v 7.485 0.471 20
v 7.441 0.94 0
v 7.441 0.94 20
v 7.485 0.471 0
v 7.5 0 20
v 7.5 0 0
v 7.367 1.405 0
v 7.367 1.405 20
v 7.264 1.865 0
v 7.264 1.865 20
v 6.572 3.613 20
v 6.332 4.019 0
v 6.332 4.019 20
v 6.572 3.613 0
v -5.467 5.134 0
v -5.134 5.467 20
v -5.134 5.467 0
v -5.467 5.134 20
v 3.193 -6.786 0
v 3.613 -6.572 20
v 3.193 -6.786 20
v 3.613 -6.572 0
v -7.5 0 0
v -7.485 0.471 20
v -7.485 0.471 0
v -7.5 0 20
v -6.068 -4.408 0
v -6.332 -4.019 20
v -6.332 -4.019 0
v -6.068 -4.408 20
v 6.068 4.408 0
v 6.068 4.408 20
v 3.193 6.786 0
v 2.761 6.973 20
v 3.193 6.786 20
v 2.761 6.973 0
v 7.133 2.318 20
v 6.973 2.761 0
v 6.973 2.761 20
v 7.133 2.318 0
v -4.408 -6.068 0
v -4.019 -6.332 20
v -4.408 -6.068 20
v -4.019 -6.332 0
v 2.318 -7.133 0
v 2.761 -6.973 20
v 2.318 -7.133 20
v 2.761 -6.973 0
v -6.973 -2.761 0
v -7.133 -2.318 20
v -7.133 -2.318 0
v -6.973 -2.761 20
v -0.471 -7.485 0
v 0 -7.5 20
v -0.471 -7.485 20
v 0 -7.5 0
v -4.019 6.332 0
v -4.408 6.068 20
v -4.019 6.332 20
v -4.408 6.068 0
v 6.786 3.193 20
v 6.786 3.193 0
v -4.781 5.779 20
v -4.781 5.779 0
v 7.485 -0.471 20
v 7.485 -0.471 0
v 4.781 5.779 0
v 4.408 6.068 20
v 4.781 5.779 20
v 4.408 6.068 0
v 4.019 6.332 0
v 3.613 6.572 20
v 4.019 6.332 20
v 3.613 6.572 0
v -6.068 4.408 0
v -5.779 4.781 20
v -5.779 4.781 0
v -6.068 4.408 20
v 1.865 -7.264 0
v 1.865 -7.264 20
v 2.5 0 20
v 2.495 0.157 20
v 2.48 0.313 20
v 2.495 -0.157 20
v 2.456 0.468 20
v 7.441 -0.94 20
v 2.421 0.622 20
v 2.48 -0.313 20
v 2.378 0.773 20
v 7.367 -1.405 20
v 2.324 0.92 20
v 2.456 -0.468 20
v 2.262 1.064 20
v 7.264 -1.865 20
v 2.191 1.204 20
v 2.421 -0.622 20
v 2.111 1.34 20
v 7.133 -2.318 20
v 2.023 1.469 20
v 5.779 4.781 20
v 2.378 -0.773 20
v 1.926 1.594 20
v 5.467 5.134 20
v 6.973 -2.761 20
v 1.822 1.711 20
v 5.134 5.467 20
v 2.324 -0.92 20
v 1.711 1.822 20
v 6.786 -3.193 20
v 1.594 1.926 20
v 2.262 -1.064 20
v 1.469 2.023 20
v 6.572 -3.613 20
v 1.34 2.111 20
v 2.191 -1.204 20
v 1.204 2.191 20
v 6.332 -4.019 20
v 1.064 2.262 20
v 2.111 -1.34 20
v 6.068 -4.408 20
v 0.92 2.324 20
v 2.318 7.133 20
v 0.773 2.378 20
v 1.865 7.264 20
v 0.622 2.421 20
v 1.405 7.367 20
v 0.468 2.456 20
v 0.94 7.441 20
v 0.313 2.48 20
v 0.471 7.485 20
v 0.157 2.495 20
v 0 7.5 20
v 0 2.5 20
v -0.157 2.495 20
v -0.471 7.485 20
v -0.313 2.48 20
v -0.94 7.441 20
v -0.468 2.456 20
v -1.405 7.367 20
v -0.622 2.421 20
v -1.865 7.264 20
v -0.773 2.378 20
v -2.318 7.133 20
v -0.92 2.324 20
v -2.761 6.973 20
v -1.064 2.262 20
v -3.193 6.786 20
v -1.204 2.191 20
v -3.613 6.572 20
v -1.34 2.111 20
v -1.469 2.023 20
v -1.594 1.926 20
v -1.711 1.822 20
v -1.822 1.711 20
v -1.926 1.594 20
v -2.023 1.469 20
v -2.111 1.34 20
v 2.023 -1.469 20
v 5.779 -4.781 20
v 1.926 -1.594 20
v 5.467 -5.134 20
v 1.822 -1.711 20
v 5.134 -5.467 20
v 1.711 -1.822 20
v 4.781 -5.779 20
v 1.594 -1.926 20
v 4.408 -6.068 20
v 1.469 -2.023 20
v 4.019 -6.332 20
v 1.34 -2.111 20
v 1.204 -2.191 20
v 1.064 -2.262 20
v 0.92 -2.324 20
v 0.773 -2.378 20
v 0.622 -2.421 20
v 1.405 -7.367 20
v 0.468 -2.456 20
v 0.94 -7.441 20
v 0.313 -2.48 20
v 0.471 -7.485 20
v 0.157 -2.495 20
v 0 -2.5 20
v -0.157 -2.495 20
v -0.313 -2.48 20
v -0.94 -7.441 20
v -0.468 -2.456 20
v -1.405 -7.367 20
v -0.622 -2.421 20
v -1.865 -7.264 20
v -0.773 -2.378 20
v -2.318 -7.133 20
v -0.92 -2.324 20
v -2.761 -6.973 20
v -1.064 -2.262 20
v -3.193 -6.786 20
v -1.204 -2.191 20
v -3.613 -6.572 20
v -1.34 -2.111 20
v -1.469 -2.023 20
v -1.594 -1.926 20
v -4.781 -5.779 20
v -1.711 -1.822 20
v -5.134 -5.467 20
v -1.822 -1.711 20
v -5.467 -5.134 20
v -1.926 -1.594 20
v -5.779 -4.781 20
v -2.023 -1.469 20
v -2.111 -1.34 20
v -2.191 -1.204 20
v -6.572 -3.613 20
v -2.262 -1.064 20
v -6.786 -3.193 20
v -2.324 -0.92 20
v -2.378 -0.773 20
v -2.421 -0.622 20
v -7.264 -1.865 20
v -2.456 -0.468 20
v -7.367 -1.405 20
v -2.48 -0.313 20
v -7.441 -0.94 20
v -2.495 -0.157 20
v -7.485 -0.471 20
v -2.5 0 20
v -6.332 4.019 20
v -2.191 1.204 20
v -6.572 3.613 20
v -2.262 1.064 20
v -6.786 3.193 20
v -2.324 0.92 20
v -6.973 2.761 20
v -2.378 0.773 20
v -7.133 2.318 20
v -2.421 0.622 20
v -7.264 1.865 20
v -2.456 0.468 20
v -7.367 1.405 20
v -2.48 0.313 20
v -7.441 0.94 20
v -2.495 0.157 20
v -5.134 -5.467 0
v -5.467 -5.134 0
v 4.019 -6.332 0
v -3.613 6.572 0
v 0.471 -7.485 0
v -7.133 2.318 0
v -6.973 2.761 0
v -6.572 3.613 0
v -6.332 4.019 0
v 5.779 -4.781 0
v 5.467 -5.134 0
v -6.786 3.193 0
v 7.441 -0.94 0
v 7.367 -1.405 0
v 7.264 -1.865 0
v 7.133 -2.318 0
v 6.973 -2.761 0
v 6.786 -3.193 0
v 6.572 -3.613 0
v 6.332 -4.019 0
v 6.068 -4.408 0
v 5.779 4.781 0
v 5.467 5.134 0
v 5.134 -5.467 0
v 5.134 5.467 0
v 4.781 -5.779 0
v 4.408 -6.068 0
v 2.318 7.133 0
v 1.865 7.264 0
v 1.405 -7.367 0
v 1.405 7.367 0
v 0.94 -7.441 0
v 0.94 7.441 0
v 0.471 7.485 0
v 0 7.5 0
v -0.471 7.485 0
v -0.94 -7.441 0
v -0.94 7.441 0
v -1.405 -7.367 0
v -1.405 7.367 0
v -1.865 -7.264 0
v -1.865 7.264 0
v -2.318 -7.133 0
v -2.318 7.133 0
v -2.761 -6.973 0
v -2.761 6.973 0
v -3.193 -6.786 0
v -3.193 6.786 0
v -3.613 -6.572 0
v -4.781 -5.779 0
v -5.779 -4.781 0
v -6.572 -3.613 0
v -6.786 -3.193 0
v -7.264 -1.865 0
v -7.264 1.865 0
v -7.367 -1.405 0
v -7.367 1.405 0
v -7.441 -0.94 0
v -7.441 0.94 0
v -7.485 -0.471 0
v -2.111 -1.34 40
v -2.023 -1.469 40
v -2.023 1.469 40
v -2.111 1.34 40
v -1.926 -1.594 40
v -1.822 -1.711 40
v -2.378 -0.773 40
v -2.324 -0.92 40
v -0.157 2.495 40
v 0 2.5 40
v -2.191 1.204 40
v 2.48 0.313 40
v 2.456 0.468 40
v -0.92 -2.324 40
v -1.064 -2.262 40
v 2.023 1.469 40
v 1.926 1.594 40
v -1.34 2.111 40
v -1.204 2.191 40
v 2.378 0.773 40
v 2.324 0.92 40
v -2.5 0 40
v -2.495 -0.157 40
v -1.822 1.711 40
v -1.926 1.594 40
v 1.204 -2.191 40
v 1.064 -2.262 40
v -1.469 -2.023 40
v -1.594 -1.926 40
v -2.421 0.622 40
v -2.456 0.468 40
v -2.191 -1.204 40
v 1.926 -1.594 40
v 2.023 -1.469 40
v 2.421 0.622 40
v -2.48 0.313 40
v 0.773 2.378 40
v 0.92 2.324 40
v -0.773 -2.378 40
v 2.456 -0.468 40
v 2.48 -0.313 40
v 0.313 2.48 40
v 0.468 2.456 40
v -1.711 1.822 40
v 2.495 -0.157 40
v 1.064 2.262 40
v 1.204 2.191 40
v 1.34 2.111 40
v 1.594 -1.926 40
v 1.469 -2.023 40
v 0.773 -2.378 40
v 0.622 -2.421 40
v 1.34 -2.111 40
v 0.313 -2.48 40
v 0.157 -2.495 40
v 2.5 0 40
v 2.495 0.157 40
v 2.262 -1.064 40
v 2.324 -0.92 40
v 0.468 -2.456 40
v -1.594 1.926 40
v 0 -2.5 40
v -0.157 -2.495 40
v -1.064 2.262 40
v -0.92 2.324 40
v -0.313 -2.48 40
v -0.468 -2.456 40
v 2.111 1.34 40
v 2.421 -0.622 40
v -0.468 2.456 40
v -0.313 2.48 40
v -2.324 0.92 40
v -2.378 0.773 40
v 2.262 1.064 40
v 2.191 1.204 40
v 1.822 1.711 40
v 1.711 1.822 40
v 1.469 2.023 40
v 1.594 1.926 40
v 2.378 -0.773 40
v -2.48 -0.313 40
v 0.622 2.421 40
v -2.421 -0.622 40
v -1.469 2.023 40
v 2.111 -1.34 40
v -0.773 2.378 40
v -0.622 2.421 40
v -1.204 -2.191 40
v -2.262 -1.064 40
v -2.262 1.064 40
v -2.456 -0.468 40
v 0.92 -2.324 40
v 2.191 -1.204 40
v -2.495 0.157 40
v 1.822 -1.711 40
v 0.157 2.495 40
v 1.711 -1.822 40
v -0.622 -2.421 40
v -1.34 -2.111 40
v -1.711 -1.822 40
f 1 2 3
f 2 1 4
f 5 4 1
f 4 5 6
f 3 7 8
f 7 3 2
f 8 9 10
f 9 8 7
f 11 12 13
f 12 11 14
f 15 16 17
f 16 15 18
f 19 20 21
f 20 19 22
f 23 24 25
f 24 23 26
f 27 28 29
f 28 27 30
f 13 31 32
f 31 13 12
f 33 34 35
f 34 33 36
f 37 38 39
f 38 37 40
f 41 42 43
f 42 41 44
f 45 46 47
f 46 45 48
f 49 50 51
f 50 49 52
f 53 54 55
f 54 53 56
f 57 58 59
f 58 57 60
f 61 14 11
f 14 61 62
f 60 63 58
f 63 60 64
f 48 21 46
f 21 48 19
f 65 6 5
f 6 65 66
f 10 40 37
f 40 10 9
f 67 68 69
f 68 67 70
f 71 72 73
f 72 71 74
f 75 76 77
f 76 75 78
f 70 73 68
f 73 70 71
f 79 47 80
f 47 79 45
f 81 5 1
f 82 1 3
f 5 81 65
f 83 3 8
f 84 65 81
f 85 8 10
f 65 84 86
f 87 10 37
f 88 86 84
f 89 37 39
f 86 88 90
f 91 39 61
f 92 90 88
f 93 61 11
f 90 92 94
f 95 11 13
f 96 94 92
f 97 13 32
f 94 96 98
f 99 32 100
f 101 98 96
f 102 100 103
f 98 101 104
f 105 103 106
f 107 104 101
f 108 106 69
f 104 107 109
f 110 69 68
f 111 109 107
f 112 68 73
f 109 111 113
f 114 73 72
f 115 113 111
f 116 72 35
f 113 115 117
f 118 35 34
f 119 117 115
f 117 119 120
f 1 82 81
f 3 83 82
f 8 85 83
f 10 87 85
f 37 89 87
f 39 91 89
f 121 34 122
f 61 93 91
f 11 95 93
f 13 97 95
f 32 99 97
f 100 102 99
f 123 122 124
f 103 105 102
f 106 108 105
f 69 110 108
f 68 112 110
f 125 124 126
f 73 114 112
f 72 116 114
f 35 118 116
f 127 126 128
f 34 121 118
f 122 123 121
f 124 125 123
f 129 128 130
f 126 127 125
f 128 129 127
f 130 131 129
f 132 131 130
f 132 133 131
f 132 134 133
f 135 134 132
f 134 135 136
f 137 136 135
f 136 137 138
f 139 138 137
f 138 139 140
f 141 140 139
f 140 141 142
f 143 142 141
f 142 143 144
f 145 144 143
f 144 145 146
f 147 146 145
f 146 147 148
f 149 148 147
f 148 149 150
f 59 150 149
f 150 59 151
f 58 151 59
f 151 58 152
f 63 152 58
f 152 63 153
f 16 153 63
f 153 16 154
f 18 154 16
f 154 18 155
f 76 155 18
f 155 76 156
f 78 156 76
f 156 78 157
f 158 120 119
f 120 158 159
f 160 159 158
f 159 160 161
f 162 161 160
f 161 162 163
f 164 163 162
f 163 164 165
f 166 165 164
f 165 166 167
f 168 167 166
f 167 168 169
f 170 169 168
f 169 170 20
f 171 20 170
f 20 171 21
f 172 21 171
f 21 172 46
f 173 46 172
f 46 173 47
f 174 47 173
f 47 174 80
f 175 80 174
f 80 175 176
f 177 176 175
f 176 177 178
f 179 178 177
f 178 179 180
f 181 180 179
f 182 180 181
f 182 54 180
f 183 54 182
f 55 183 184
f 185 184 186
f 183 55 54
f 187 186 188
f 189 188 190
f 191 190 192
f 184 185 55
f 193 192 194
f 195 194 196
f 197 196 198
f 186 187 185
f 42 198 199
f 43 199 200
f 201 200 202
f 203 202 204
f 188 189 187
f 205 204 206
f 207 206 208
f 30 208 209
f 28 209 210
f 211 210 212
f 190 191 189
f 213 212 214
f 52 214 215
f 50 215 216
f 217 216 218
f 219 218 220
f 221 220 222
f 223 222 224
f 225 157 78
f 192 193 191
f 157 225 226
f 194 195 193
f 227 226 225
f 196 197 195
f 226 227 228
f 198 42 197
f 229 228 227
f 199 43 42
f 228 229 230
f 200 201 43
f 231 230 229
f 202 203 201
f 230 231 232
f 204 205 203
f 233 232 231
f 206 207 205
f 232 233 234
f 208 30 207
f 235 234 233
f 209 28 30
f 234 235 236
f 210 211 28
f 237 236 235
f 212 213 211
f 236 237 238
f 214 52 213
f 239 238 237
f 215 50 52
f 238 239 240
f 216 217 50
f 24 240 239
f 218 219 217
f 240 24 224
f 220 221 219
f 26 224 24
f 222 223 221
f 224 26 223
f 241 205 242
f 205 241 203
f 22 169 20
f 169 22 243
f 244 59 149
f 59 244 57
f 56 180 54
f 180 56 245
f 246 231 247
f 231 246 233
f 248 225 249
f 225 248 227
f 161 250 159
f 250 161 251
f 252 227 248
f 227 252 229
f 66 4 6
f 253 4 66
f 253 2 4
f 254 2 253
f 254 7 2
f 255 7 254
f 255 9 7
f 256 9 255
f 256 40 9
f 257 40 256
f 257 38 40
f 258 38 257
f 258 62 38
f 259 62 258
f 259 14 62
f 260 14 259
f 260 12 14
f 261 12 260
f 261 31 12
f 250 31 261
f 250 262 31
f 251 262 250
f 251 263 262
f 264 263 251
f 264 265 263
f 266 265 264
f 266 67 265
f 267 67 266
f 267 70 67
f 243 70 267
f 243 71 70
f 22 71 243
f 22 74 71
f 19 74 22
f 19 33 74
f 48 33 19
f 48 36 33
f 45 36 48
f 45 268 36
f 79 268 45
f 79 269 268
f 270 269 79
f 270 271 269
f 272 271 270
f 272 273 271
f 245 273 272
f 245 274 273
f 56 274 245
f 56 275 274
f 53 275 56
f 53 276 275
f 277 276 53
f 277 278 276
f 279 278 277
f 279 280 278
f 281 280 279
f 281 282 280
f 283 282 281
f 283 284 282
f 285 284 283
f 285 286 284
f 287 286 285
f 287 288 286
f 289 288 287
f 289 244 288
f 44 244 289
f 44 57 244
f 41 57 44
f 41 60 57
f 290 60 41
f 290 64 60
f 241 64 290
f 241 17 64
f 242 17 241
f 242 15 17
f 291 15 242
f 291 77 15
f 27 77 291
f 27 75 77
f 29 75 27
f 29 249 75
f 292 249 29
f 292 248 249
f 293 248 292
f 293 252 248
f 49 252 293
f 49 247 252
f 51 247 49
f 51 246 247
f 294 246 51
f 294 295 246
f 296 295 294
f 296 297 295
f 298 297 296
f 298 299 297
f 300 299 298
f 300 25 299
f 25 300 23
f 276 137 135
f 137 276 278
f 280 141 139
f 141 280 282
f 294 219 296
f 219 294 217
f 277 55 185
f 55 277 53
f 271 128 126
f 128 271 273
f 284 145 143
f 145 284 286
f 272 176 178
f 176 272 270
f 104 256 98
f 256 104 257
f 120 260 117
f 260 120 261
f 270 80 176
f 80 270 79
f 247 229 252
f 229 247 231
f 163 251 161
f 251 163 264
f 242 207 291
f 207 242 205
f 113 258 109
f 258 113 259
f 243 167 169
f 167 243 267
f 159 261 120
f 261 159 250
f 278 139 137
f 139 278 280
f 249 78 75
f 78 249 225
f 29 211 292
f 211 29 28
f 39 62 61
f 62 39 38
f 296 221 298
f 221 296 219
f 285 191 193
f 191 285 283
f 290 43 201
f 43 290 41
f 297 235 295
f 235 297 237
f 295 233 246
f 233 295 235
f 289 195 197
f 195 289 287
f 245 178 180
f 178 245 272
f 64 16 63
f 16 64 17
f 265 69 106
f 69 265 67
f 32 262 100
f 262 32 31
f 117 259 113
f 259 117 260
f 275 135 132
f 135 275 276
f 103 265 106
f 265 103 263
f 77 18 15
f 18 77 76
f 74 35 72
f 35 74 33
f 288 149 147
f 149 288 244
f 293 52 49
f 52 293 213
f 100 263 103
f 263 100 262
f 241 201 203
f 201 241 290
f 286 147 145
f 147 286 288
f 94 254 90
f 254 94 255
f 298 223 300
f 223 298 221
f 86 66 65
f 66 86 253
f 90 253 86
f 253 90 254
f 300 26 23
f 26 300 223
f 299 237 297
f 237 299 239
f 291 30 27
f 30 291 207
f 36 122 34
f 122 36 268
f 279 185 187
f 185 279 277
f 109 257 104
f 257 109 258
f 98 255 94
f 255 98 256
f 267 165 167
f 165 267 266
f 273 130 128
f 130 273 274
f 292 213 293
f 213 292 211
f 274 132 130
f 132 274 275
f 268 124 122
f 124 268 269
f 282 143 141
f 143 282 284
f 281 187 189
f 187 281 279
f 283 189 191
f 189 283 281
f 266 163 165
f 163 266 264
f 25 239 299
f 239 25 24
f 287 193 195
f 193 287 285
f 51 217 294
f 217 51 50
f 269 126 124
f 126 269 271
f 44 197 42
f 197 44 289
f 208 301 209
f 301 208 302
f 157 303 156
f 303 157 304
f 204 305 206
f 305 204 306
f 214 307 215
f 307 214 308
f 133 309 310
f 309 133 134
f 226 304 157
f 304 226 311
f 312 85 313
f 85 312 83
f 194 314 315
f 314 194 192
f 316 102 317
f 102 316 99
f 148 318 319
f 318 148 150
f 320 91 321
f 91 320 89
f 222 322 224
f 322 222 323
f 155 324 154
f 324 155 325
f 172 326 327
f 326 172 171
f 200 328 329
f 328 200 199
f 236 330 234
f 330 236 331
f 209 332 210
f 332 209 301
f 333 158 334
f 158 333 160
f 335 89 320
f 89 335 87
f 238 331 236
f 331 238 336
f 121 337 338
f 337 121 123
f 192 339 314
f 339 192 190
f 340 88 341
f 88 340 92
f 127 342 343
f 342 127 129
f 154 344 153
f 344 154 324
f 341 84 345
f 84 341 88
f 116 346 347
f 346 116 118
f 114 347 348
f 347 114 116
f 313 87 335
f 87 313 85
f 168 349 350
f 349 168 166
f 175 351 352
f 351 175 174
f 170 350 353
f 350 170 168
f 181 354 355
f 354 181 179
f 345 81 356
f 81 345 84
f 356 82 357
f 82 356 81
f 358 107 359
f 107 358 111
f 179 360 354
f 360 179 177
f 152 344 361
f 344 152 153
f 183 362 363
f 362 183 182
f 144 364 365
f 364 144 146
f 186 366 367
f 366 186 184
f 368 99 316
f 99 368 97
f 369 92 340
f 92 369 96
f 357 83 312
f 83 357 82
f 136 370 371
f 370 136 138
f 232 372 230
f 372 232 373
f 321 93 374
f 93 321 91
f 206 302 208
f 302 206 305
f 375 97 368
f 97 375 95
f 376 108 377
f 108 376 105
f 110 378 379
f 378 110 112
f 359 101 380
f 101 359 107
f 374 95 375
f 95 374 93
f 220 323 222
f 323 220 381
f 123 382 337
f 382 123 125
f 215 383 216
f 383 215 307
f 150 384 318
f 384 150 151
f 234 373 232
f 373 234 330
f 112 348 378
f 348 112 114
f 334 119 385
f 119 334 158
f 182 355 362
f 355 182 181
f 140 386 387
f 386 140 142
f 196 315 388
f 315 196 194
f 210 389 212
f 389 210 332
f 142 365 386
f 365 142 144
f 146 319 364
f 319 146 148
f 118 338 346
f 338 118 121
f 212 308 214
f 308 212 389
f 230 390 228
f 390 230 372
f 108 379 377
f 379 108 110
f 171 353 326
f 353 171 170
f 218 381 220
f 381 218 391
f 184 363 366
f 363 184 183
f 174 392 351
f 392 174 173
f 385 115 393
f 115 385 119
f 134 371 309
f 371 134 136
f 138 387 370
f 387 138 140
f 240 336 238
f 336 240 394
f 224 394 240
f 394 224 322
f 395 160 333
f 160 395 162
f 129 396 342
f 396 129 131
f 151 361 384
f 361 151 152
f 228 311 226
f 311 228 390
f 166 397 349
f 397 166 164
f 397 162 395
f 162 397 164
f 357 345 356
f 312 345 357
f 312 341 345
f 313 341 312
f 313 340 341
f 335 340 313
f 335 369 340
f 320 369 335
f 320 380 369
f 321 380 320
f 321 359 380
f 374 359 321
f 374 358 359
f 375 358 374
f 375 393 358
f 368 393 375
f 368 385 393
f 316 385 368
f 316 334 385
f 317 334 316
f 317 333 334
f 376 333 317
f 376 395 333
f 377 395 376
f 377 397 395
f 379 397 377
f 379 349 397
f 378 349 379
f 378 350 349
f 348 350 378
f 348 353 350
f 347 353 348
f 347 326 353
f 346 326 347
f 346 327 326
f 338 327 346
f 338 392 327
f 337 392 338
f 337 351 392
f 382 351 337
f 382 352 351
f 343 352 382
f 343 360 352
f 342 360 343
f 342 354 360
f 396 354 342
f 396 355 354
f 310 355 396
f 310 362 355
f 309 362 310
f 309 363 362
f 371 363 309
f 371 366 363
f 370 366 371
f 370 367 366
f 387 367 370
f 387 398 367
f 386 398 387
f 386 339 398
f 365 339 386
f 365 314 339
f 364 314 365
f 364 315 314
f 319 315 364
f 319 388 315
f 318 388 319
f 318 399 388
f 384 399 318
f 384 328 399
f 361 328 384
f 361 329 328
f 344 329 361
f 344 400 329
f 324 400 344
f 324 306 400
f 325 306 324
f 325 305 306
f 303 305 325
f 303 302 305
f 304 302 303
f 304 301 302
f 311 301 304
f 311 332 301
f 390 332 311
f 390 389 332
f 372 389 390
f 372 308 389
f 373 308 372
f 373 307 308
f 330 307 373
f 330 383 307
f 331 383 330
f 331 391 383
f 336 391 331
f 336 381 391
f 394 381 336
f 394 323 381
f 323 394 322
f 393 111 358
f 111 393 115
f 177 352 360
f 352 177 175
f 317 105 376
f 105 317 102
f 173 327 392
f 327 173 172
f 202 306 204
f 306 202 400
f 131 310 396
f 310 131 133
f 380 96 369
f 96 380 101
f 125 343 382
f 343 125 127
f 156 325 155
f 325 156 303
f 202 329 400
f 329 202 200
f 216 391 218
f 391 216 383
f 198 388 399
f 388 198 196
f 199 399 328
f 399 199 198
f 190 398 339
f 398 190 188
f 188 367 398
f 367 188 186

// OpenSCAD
translate([0, 0, 0]) {
    cylinder(h=20, r=7.5, $fn=100);
    cylinder(h=40, r=2.5, $fn=100);
}
